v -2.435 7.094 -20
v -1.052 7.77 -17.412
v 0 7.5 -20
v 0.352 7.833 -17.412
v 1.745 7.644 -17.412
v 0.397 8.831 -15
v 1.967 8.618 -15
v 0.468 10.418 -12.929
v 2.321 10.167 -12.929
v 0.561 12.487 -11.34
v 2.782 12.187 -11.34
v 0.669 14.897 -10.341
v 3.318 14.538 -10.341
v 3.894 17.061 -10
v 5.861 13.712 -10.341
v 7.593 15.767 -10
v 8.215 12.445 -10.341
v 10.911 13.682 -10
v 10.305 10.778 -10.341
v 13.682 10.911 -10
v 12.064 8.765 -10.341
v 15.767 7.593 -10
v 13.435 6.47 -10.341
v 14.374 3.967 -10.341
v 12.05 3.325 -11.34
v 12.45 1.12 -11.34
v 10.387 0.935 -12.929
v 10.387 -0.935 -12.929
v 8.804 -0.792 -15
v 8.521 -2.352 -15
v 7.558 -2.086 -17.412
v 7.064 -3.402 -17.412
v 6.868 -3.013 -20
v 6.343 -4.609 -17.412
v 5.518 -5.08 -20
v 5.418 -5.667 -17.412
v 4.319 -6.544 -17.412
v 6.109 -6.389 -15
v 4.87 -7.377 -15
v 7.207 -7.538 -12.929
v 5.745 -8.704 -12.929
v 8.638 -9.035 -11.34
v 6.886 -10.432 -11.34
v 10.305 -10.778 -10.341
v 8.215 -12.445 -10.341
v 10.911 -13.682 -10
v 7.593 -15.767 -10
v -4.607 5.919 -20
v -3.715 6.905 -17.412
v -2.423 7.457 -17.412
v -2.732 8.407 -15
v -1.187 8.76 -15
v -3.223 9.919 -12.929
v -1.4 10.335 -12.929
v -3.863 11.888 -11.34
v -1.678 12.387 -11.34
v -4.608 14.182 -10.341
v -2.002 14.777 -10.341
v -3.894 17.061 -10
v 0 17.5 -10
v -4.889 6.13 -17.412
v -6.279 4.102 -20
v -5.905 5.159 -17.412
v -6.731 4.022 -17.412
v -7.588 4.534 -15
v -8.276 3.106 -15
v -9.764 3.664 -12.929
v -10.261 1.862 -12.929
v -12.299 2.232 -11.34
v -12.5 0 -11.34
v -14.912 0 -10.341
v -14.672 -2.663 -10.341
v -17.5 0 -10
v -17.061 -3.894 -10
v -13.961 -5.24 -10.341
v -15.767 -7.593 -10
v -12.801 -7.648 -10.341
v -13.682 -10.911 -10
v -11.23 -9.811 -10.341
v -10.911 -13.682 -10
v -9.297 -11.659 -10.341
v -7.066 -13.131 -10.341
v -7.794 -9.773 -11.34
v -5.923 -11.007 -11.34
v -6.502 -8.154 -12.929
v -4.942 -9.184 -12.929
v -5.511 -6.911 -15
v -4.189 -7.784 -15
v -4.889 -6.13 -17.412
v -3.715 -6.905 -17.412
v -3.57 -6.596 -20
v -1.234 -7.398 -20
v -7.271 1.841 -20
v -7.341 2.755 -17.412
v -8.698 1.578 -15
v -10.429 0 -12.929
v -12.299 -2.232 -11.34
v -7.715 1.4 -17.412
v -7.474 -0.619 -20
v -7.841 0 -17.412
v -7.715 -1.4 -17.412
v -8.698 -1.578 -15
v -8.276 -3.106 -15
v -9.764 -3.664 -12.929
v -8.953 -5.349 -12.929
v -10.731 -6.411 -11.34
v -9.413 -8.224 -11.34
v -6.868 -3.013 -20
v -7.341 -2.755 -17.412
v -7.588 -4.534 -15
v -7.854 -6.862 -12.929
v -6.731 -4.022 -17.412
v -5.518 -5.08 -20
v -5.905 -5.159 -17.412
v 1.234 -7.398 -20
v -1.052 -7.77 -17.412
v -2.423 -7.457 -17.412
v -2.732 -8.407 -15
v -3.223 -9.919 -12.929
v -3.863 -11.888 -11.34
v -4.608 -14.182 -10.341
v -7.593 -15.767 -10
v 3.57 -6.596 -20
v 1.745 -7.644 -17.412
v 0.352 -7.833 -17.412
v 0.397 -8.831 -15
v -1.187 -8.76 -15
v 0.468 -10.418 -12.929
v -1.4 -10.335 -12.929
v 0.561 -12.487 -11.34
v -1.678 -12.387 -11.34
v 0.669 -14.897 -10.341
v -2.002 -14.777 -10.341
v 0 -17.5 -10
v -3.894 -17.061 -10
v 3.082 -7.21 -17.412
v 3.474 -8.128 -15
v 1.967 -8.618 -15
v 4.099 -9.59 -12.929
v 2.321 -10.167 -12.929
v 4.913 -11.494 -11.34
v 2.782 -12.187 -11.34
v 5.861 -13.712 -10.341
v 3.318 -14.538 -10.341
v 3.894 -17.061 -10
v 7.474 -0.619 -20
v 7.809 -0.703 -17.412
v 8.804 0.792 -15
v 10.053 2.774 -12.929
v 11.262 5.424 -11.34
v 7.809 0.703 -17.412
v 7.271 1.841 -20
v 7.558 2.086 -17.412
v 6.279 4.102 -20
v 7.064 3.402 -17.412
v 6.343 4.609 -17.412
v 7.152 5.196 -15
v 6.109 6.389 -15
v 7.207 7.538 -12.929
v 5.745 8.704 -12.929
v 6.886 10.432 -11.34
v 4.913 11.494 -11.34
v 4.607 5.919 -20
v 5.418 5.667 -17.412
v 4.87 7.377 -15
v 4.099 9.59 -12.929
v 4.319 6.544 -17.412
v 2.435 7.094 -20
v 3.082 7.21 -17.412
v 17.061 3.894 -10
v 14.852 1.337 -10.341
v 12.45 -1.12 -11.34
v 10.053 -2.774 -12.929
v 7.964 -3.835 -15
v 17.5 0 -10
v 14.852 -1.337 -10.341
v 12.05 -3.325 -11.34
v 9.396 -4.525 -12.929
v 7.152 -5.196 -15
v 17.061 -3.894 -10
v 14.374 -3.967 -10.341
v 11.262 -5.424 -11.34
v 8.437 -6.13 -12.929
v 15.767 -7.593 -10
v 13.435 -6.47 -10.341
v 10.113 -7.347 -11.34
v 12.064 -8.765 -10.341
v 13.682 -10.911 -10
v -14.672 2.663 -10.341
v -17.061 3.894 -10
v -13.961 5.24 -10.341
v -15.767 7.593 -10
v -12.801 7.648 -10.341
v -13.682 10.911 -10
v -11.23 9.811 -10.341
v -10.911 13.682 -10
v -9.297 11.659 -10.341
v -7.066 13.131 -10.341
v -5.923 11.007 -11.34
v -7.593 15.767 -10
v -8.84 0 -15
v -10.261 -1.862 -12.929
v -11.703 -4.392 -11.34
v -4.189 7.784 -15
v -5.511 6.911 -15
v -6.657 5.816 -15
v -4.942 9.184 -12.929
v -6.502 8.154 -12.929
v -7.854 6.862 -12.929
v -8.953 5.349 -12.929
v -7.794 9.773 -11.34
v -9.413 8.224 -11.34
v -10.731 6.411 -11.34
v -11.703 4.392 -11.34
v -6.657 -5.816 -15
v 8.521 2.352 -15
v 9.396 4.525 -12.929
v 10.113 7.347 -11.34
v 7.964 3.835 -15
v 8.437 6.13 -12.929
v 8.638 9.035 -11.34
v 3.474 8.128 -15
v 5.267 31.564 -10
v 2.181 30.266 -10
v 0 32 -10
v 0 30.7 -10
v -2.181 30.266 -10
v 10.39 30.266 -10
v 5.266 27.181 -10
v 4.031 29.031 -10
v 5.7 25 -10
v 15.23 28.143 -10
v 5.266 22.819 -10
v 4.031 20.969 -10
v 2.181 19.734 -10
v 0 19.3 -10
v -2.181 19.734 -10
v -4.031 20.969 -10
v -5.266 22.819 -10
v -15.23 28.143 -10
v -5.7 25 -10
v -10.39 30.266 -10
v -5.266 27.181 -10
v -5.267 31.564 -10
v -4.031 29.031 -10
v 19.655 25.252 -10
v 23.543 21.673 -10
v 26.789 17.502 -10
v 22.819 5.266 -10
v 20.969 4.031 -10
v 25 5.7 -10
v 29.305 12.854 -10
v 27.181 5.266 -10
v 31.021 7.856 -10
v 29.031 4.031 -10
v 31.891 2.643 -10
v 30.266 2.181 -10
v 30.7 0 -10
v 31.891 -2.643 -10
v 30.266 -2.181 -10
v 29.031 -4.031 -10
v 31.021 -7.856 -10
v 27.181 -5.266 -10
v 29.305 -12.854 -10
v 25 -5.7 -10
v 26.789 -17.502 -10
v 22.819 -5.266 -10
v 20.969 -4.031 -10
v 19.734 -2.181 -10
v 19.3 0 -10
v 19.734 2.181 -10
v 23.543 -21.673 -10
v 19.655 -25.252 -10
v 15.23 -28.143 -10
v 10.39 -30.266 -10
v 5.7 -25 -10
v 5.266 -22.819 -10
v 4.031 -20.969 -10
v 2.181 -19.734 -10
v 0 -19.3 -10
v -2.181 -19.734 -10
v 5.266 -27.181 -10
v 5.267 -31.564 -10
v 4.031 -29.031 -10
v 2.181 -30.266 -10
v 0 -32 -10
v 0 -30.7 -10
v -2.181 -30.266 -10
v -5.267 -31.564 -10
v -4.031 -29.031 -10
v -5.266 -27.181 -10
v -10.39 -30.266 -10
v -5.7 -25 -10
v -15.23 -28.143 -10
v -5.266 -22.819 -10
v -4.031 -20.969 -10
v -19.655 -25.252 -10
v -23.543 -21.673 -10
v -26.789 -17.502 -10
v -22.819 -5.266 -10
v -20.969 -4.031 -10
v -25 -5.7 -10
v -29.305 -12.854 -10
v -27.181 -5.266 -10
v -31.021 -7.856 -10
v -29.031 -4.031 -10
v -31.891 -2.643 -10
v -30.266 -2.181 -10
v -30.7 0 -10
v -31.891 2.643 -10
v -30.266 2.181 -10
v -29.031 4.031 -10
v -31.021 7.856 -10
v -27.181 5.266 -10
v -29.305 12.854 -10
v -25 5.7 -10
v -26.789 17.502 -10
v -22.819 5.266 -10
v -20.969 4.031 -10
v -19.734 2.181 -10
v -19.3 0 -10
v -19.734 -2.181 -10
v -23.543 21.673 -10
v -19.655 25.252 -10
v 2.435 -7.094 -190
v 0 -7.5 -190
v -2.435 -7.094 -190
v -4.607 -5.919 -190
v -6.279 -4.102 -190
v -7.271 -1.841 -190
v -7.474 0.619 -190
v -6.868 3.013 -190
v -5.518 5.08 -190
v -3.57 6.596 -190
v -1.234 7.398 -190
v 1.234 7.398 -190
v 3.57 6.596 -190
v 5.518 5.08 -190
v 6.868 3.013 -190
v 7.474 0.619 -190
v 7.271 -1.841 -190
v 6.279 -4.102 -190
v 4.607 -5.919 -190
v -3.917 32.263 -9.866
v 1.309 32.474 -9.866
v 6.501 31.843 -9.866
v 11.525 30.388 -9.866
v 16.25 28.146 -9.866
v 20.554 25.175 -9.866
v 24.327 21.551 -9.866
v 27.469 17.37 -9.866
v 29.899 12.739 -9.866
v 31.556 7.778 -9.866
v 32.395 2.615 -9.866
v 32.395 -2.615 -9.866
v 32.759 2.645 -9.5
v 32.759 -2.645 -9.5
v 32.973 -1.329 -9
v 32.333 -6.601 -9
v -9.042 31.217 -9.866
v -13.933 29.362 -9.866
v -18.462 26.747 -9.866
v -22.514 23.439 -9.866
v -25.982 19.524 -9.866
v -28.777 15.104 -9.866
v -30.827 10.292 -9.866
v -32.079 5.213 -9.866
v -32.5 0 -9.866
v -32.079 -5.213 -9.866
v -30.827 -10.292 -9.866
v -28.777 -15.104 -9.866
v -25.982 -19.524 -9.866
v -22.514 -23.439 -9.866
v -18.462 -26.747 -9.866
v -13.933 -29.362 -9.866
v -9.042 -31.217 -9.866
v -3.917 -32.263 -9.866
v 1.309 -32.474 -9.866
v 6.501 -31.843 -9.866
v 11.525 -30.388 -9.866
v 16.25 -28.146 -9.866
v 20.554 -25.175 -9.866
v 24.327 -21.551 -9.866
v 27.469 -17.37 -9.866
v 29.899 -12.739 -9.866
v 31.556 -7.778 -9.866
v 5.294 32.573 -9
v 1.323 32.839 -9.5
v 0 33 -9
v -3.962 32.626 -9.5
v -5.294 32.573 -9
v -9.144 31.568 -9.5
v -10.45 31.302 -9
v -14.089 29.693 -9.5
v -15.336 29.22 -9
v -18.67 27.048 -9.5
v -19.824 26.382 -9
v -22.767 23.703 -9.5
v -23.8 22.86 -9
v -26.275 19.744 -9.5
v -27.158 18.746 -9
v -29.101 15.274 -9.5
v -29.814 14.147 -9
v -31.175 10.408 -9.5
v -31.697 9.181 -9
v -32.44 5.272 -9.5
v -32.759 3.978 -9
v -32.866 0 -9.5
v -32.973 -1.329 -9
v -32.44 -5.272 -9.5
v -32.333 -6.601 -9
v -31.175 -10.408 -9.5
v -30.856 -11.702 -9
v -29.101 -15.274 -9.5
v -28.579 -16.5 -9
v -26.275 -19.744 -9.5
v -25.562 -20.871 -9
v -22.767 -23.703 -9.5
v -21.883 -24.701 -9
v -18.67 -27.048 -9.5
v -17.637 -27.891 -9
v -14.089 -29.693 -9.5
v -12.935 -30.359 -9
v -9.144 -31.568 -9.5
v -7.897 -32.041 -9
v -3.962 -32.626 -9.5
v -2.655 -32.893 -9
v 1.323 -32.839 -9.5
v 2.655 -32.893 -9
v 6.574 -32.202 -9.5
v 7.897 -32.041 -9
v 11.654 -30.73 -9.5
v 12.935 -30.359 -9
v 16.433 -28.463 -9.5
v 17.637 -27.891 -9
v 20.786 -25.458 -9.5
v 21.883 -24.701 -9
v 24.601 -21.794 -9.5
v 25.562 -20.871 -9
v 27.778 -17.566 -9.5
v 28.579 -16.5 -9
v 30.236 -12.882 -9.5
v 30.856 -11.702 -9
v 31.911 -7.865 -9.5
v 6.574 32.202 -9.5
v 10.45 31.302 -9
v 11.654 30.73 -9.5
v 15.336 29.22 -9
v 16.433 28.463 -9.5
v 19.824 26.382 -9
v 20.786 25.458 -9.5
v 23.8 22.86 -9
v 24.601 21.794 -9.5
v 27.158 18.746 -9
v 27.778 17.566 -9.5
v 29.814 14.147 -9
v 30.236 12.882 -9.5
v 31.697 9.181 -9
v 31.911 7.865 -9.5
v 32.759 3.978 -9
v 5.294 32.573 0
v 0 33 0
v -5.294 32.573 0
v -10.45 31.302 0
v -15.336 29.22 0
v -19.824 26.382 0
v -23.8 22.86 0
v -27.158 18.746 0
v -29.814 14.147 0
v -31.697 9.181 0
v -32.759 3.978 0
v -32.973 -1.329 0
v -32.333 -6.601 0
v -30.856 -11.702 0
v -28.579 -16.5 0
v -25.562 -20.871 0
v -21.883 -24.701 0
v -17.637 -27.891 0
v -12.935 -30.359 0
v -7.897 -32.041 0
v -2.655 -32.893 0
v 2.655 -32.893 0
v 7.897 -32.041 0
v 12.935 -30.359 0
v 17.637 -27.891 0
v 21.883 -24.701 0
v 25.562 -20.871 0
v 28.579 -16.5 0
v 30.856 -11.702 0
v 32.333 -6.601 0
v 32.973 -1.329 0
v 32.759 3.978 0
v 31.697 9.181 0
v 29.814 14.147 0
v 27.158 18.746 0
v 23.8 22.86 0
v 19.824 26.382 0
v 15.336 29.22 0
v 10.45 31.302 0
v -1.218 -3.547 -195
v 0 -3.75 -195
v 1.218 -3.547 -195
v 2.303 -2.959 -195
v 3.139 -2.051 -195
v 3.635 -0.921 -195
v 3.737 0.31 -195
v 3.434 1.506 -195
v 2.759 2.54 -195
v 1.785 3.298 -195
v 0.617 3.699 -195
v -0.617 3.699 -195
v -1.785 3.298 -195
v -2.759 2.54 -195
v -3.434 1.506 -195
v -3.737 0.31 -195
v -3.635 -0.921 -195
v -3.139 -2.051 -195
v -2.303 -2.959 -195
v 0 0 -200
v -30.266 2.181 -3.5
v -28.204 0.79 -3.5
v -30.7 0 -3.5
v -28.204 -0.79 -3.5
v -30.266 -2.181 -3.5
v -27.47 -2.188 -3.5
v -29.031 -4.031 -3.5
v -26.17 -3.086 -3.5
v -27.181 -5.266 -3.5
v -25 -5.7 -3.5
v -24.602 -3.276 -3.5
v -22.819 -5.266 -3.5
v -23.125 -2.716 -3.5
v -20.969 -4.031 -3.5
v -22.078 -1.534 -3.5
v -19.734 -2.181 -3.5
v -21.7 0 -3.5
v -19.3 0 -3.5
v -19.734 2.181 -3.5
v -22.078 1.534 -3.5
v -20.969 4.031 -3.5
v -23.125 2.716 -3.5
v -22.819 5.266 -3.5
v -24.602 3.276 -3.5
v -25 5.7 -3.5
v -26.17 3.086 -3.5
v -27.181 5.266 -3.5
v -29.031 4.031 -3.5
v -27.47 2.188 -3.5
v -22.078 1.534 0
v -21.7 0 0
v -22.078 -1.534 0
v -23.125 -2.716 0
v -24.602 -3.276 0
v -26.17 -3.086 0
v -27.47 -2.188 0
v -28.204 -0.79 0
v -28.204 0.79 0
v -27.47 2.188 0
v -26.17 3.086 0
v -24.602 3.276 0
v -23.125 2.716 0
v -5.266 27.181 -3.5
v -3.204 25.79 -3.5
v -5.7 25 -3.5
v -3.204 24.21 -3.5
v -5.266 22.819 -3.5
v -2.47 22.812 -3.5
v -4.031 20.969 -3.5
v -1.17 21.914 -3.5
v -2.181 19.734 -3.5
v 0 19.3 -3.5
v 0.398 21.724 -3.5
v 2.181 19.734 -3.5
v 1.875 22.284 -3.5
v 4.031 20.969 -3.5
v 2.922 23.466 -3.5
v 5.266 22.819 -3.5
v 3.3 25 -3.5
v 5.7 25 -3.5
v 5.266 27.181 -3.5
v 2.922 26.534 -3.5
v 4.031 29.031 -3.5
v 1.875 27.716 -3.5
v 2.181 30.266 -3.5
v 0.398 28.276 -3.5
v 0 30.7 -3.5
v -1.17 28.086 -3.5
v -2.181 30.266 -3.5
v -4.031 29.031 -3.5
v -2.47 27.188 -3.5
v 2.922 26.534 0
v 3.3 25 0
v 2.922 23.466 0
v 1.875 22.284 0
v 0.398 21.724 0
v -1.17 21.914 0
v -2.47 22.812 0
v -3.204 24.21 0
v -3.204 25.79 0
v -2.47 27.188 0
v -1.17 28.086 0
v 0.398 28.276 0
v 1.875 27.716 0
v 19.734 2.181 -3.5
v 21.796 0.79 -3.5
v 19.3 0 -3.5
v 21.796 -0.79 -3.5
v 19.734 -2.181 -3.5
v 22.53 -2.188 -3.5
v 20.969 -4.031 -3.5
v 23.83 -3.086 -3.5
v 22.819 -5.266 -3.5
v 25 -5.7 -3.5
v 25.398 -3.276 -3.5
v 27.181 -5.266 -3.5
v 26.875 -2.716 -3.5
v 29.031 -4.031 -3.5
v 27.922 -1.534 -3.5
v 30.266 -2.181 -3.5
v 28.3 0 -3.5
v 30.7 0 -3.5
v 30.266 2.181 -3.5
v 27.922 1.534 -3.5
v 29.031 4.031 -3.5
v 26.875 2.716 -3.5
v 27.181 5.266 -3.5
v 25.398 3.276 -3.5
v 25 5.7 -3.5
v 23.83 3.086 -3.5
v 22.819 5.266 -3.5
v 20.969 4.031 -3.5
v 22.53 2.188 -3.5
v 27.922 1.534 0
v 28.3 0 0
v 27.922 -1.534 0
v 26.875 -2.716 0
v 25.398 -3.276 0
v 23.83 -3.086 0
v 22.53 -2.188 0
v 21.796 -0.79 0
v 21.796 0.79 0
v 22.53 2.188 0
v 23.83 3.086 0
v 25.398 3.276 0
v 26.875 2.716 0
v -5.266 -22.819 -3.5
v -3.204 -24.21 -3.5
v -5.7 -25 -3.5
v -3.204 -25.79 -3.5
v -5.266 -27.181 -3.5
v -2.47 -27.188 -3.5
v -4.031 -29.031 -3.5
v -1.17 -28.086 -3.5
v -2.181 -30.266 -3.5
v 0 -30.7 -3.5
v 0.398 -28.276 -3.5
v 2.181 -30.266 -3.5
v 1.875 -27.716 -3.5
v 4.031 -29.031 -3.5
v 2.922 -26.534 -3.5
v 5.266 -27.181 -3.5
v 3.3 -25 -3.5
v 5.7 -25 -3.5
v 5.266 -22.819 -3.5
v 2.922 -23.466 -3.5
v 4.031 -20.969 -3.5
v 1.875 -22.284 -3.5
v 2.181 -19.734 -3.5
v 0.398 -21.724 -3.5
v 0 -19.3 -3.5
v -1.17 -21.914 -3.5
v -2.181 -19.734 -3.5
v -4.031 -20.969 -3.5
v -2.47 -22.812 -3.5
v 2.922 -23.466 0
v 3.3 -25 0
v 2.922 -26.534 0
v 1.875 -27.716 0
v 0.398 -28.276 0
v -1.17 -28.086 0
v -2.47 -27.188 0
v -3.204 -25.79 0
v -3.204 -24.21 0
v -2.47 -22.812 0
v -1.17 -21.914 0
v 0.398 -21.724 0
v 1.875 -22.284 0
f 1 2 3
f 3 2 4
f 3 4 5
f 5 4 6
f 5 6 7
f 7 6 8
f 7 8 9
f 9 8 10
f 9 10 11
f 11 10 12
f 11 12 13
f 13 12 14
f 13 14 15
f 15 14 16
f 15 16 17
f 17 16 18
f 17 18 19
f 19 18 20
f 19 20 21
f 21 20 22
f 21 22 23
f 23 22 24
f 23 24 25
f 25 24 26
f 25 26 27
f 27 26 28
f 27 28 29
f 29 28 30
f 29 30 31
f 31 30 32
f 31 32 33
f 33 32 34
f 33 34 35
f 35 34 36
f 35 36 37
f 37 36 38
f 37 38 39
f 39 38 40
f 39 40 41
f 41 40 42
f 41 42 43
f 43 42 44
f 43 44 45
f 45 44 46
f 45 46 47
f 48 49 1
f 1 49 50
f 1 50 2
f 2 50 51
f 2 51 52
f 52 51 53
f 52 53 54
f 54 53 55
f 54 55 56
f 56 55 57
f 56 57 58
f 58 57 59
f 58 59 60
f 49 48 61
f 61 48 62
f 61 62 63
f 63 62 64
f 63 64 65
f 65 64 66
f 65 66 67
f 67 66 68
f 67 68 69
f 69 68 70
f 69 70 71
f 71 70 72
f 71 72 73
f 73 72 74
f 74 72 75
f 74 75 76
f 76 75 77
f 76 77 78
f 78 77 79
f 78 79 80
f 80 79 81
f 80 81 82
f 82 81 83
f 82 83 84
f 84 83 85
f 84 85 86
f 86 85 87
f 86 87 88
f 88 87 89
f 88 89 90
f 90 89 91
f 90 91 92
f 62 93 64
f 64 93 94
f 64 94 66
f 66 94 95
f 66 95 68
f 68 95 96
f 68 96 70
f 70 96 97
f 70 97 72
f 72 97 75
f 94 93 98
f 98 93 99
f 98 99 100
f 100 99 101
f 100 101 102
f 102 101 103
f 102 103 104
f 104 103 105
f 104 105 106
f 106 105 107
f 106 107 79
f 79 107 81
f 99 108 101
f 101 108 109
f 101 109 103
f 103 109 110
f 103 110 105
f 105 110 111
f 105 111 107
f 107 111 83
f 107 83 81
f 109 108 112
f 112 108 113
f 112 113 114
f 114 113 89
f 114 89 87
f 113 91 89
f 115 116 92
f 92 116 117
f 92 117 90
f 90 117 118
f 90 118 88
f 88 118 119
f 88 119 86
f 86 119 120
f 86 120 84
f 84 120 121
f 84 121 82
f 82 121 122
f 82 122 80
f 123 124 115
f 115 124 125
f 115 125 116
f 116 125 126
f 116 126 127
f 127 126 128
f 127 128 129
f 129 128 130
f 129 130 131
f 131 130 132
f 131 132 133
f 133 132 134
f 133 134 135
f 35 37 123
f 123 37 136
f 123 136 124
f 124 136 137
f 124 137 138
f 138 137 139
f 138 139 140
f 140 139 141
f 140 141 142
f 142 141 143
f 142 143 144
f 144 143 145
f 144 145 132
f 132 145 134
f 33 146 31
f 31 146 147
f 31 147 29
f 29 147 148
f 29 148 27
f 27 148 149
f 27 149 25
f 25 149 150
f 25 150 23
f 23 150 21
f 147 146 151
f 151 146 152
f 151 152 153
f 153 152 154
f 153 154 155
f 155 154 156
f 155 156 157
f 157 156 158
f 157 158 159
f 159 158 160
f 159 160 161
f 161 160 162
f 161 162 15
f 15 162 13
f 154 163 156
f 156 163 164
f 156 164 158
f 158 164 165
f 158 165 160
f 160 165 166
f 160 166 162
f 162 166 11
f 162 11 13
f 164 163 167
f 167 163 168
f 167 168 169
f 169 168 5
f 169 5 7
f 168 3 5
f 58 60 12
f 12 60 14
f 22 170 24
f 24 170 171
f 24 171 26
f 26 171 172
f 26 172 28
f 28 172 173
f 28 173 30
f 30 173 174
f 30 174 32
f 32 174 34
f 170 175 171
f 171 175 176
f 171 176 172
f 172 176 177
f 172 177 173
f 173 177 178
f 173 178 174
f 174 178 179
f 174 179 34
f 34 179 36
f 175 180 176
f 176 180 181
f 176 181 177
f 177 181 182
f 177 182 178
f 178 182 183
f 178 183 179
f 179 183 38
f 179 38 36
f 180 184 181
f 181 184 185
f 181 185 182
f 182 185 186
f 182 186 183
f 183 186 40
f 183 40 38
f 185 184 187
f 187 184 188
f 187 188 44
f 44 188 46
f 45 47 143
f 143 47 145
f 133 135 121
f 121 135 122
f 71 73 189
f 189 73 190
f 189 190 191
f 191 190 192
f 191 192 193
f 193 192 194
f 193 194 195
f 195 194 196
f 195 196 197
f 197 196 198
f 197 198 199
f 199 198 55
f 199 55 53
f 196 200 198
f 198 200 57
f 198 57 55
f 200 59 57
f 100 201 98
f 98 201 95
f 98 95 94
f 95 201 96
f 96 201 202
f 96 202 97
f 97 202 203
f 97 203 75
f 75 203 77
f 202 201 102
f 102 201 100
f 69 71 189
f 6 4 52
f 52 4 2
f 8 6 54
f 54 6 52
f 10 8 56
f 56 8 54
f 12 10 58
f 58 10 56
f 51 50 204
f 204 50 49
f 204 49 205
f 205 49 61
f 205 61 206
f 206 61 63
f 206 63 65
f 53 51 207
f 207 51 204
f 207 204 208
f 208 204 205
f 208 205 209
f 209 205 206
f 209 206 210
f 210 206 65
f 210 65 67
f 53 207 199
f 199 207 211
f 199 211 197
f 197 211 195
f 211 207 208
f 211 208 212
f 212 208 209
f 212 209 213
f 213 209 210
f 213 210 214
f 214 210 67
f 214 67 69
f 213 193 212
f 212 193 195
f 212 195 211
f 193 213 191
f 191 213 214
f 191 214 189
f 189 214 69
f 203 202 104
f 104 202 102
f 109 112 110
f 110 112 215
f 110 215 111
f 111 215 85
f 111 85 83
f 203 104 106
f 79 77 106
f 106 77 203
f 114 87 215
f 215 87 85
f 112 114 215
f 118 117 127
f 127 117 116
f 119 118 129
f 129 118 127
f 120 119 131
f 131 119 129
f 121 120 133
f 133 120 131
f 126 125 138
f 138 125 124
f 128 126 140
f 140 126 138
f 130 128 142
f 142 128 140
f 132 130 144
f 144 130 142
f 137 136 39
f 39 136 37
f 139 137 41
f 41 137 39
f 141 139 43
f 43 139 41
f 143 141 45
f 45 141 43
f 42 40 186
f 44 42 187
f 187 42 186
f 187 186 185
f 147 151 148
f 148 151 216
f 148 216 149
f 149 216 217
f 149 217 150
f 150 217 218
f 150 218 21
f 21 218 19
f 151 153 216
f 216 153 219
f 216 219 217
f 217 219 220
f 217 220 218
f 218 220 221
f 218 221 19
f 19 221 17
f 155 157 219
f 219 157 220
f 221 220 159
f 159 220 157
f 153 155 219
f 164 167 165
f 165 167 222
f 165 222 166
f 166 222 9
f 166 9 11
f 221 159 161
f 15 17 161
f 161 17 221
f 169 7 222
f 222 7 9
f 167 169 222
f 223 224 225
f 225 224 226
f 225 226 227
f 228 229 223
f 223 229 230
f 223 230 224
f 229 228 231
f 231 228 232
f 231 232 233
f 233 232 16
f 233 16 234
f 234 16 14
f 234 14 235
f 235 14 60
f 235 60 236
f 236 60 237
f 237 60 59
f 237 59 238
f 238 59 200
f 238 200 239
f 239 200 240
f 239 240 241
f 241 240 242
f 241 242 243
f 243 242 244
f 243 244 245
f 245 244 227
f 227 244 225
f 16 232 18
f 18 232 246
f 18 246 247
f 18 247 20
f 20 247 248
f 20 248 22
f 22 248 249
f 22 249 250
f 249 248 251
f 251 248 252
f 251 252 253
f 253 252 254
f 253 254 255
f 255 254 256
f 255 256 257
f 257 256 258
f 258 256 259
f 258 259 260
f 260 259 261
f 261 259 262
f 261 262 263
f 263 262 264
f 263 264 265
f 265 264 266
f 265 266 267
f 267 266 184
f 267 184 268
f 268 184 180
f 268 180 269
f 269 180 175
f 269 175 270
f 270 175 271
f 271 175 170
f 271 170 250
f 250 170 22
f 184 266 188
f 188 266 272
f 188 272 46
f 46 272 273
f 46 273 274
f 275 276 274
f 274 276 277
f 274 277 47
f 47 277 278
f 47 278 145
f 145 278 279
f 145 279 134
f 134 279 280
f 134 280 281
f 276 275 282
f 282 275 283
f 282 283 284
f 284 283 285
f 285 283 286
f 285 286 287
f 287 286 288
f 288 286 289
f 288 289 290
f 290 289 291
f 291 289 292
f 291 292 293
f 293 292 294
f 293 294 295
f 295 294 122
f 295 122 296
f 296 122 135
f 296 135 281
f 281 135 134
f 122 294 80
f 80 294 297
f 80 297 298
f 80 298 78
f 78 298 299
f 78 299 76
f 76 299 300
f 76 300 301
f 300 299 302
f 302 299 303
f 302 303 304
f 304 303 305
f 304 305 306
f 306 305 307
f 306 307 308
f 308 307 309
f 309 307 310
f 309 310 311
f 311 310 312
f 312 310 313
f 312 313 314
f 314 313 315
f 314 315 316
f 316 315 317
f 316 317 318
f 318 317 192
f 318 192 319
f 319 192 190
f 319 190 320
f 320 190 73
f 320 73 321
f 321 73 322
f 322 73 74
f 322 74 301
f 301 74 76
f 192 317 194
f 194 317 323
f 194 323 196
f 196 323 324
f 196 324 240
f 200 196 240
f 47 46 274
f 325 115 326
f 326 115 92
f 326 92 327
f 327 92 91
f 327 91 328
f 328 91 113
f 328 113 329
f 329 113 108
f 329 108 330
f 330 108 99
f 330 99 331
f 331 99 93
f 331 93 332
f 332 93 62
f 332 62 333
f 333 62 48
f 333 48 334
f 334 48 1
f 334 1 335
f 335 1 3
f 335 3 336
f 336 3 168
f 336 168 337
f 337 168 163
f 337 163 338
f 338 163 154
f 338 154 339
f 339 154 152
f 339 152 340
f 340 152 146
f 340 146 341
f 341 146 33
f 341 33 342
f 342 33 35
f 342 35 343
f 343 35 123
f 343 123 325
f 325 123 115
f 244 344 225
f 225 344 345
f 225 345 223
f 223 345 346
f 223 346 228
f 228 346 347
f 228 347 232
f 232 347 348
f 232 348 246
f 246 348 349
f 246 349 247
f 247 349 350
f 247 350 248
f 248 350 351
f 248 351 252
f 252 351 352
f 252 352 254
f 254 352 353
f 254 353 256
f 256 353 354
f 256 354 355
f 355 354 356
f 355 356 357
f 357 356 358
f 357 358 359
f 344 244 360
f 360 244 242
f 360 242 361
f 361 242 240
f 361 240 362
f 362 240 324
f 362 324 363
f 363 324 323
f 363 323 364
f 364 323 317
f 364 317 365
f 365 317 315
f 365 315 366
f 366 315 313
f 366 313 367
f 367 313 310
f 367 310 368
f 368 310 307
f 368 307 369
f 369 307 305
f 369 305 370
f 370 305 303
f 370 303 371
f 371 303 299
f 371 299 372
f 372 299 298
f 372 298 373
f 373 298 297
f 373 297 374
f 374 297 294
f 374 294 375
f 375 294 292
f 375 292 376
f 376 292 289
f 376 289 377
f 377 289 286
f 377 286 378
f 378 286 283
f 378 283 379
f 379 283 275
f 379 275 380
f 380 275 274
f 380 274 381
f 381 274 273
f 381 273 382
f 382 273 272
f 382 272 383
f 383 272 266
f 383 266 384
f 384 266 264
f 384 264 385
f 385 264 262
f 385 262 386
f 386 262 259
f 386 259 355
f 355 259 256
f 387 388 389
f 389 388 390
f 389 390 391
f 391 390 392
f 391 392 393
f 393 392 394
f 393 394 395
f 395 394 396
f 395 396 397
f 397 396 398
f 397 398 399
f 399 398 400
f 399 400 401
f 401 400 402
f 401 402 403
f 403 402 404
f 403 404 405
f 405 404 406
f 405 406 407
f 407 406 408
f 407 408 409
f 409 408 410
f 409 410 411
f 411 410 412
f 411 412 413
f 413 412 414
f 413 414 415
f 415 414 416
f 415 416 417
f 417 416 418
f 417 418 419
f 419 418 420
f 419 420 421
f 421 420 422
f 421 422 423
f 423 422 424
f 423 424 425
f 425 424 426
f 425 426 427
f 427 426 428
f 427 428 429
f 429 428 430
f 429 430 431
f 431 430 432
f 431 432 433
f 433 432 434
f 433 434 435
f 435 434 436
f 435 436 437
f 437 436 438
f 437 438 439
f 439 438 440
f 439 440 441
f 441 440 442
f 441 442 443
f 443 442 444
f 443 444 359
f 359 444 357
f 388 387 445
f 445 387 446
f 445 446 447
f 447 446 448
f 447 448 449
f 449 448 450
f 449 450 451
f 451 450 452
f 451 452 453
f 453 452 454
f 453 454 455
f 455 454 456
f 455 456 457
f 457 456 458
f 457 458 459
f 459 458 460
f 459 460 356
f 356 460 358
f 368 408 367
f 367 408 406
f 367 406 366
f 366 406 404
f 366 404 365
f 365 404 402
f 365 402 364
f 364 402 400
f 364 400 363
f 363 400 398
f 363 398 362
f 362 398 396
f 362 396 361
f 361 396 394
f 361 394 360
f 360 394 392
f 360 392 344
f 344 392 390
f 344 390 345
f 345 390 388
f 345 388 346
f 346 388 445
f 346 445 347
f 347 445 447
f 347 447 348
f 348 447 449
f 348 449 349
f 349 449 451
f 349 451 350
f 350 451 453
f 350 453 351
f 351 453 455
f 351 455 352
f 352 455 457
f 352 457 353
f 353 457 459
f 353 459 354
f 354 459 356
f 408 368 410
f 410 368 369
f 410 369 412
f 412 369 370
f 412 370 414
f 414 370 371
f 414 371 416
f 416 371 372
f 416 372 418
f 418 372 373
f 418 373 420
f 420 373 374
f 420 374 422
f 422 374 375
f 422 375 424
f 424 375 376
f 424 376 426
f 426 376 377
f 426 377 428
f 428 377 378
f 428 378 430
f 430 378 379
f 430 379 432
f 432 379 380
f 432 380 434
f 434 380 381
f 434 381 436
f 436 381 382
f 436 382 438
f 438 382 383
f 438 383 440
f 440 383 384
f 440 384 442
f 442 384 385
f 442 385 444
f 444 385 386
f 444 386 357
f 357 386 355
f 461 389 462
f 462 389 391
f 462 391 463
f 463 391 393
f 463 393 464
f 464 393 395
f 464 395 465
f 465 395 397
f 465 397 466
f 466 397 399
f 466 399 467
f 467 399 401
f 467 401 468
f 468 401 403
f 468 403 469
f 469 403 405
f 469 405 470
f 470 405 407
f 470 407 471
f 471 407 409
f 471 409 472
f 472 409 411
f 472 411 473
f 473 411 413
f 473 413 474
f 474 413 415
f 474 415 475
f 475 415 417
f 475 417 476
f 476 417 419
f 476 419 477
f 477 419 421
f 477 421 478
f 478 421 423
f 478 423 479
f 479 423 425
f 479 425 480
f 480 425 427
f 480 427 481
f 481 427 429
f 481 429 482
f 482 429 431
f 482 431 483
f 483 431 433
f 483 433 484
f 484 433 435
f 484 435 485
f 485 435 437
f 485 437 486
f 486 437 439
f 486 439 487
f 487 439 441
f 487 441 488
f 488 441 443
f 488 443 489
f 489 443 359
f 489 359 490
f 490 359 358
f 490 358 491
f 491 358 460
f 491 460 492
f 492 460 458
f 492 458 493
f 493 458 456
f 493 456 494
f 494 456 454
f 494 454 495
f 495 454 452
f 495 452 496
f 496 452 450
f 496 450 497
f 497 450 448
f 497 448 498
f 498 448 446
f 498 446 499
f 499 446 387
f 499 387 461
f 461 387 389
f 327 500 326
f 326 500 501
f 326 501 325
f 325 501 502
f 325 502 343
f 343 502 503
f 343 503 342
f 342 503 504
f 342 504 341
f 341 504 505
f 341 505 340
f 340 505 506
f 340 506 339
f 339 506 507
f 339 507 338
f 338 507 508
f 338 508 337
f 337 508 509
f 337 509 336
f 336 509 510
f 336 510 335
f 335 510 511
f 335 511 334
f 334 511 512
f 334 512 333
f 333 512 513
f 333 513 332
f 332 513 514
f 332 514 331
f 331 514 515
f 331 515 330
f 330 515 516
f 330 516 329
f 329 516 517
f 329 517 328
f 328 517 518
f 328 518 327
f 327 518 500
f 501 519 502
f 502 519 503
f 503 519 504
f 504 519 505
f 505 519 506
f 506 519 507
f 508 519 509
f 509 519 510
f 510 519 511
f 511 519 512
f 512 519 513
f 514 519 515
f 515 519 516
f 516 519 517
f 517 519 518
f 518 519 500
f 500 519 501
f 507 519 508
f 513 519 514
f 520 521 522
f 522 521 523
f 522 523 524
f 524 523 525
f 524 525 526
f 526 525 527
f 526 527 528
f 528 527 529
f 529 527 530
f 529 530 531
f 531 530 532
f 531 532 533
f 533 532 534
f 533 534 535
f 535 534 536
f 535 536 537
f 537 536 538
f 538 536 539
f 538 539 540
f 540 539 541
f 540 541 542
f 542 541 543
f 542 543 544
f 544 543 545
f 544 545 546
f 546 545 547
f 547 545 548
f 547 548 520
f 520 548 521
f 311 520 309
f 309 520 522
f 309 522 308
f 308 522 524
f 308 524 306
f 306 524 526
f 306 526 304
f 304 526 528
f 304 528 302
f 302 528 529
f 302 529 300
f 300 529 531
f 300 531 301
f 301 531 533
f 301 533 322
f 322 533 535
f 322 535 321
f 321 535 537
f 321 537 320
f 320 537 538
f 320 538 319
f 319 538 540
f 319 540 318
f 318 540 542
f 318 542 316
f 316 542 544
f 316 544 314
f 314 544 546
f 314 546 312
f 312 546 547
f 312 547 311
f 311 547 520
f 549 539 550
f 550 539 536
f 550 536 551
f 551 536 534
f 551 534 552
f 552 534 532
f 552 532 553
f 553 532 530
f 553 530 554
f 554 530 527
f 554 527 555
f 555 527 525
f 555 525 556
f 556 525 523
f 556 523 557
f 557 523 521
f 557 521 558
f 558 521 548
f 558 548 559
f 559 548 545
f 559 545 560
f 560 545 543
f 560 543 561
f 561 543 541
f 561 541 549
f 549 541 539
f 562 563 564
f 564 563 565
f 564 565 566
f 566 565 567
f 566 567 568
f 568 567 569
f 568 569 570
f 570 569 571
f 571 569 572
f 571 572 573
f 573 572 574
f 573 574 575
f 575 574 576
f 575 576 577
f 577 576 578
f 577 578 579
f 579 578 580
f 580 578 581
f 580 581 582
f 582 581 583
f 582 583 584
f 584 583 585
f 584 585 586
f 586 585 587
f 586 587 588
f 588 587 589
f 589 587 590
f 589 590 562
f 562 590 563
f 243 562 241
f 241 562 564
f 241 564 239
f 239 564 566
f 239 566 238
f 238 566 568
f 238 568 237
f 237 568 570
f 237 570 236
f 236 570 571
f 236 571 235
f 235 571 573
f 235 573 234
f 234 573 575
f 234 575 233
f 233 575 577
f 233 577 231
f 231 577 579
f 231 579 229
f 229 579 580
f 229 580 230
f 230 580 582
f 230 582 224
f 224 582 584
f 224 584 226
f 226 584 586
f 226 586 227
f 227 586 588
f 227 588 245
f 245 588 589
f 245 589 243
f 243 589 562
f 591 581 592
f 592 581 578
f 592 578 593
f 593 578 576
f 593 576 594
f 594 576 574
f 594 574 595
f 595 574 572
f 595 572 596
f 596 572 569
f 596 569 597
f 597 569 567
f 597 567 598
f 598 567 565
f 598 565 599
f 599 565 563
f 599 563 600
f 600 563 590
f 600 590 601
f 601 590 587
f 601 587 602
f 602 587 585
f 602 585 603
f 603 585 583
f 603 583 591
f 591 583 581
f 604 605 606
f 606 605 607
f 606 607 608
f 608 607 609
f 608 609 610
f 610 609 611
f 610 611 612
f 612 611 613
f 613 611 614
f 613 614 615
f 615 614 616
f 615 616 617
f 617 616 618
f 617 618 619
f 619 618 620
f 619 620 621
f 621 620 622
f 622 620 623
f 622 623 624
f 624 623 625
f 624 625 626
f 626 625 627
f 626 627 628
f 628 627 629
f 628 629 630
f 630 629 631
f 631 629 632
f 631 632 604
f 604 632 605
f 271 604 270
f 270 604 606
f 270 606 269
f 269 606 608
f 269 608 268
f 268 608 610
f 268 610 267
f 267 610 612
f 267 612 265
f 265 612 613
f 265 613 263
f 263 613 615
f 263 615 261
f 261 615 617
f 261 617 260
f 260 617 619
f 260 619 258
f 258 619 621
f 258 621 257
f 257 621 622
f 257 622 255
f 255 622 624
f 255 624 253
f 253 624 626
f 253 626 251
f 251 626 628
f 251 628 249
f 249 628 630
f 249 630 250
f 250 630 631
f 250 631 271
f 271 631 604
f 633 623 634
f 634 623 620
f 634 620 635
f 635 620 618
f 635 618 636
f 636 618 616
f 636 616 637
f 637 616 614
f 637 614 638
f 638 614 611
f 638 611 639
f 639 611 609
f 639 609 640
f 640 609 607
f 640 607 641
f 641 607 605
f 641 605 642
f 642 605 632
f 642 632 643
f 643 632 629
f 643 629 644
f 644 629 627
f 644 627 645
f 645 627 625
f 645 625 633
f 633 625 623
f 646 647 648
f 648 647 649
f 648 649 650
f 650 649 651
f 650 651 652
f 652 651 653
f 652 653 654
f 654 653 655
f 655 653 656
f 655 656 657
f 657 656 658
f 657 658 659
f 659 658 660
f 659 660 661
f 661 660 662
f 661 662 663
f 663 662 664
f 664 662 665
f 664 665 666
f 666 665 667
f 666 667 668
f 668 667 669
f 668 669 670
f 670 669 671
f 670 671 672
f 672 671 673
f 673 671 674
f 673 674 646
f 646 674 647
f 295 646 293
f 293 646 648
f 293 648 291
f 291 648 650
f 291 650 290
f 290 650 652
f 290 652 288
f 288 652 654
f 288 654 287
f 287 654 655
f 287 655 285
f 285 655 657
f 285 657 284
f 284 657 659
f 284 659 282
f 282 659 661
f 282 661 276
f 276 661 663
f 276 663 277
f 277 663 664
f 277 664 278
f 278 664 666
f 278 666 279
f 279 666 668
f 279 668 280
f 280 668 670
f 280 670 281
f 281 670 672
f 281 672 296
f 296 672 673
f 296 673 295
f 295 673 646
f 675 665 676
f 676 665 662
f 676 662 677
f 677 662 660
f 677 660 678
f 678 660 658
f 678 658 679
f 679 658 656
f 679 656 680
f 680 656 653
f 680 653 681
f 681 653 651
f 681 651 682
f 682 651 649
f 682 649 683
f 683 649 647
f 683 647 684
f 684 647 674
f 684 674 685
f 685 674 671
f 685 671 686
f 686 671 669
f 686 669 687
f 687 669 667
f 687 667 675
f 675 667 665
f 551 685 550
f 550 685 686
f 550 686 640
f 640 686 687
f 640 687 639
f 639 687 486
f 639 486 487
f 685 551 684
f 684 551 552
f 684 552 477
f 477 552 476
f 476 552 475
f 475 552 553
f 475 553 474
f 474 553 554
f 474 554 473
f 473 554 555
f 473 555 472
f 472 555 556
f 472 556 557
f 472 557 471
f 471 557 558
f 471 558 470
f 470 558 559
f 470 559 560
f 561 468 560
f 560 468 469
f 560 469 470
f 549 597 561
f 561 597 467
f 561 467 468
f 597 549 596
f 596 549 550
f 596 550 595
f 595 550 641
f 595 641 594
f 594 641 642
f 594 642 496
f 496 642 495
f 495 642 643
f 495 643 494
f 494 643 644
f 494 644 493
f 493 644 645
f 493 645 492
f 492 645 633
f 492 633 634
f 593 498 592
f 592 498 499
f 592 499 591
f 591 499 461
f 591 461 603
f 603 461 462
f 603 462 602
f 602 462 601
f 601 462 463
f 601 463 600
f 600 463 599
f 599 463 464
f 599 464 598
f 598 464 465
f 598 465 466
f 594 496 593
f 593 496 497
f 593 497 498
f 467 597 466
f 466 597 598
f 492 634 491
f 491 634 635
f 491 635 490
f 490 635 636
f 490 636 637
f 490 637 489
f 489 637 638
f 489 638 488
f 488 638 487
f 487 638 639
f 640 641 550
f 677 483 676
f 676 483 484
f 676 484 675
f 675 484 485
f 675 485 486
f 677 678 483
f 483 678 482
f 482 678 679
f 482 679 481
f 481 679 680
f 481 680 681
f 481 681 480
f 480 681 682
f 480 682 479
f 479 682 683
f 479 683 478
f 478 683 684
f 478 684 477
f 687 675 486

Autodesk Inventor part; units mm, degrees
ref_plane "YZ Plane" through (0, 0, 0) normal (1, 0, 0) x (0, 1, 0)
ref_plane "XZ Plane" through (0, 0, 0) normal (0, 1, 0) x (-1, 0, 0)
ref_plane "XY Plane" through (0, 0, 0) normal (0, 0, 1) x (1, 0, 0)
sketch "Náčrt11" plane through (0, 0, 0) normal (1, 0, 0) x (0, 1, 0)
  line L0 (-6.6, 0) -> (39.6, 0) projected
  line L1 (0, -240) -> (0, 40) projected
  line L2 (0, 0) -> (33, 0)
  line L3 (33, 0) -> (33, -10)
  line L4 (33, -10) -> (0, -10)
  line L5 (0, -10) -> (0, 0)
  line L6 (0, -10) -> (7.5, -10)
  line L7 (7.5, -10) -> (7.5, -200)
  line L8 (7.5, -200) -> (0, -200)
  line L9 (0, -200) -> (0, -10)
  point P0 (33, 0)
  point P1 (0, -200)
  dimension "d109" = 33
  dimension "d110" = 10
  dimension "d111" = 7.5
  dimension "d112" = 190
revolve "Rotace2" add sketch "Náčrt11" angle 360 about axis through (0, 0, -10) along (0, 0, 1)
sketch "Náčrt12" plane through (0, 0, -10) normal (0, 0, -1) x (-1, 0, 0)
  line L0 (46.2, 0) -> (-46.2, 0) projected
  line L1 (0, -46.2) -> (0, 46.2) projected
  circle A0 centre (0, 0) radius 25 construction
  point P0 (0, 25)
  point P1 (-25, 0)
  point P2 (25, 0)
  point P3 (0, -25)
  dimension "d114" = 50
hole "Díra4" at (0, 25, -10) at (25, 0, -10) at (-25, 0, -10) at (0, -25, -10) direction (0, 0, 1) diameter 6.6 end through all counterbore diameter 11.4 counterbore depth 6.5 clearance for "Šroub s hlavou s vnitřním vybráním ISO 4762" size "M6" standard "ISO"
chamfer "Zkosení4" distance 10 distance2 7.5 1 edges at (0, -7.5, -200) measured on face at (0.6035, 7.4757, -136.6667)
fillet "Zaoblení12" radius 1 1 edges at (0, -33, -10)
fillet "Zaoblení13" radius 10 1 edges at (0, -7.5, -10)
properties part number "Drzak_kamera"
